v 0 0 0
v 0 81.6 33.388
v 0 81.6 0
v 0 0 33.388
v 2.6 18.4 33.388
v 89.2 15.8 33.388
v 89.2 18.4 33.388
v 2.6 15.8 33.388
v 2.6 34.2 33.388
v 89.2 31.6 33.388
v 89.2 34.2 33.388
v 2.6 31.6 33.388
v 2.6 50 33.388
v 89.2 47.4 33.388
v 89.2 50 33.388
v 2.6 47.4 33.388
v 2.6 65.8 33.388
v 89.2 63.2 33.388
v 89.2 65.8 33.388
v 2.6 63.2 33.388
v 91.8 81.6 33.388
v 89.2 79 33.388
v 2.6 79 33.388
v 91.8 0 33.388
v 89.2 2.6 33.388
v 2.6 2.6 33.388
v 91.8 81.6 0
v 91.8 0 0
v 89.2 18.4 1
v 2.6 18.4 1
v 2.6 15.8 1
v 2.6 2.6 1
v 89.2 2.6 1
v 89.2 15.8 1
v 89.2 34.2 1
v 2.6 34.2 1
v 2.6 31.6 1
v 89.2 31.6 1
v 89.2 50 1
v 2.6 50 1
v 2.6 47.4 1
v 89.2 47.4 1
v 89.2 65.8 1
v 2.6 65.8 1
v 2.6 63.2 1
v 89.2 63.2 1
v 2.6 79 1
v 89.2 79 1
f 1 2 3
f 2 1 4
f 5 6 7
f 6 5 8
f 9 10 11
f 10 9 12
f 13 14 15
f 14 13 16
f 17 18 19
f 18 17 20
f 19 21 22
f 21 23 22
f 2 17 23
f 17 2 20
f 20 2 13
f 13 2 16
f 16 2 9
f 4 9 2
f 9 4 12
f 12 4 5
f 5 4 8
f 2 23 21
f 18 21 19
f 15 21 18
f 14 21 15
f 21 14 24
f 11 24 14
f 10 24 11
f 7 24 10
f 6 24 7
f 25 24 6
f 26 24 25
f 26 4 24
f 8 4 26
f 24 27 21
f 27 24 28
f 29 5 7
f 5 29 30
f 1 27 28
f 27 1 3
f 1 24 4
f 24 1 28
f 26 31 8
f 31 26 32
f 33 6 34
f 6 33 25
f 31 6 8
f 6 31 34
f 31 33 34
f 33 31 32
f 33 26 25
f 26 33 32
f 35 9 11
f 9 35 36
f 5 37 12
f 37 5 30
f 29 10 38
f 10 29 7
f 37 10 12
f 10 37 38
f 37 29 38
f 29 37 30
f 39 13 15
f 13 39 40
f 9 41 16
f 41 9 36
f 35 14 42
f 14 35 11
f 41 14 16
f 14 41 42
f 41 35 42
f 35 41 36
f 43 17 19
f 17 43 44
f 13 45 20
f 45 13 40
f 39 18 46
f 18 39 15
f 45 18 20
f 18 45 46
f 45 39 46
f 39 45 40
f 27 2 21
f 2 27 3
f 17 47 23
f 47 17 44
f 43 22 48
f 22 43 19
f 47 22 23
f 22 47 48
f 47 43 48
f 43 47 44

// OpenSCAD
width = 85.6 + 1;     // 85.6 plus some margin
height = 53.98 * 3/5; // height reduced to a majority

// e.g. this is two sections of 8 cards and two of 6 cards
sections = [12, 12, 12, 12, 12];

// Cards with raised lettering are about 1.3mm thick
// Cards without are about 0.8mm thick
// Average out to 1.1 or so
card_thickness = 1.1;

wall_thickness = 2.6;
floor_thickness = 1;

total_width = wall_thickness * 2 + width;
total_height = floor_thickness + height;

function sumof(v, i = 0) = i == -1 ? 0 : v[i] + sumof(v, i - 1);

for(i = [0 : len(sections) - 1]) {
    translate([0, sumof(sections, i - 1) * card_thickness + wall_thickness * i, 0])
    difference() {
        cube([total_width, card_thickness * sections[i] + wall_thickness * 2, total_height]);
        translate([wall_thickness, wall_thickness, floor_thickness])
        cube([width, card_thickness * sections[i], height]);
    }
}
